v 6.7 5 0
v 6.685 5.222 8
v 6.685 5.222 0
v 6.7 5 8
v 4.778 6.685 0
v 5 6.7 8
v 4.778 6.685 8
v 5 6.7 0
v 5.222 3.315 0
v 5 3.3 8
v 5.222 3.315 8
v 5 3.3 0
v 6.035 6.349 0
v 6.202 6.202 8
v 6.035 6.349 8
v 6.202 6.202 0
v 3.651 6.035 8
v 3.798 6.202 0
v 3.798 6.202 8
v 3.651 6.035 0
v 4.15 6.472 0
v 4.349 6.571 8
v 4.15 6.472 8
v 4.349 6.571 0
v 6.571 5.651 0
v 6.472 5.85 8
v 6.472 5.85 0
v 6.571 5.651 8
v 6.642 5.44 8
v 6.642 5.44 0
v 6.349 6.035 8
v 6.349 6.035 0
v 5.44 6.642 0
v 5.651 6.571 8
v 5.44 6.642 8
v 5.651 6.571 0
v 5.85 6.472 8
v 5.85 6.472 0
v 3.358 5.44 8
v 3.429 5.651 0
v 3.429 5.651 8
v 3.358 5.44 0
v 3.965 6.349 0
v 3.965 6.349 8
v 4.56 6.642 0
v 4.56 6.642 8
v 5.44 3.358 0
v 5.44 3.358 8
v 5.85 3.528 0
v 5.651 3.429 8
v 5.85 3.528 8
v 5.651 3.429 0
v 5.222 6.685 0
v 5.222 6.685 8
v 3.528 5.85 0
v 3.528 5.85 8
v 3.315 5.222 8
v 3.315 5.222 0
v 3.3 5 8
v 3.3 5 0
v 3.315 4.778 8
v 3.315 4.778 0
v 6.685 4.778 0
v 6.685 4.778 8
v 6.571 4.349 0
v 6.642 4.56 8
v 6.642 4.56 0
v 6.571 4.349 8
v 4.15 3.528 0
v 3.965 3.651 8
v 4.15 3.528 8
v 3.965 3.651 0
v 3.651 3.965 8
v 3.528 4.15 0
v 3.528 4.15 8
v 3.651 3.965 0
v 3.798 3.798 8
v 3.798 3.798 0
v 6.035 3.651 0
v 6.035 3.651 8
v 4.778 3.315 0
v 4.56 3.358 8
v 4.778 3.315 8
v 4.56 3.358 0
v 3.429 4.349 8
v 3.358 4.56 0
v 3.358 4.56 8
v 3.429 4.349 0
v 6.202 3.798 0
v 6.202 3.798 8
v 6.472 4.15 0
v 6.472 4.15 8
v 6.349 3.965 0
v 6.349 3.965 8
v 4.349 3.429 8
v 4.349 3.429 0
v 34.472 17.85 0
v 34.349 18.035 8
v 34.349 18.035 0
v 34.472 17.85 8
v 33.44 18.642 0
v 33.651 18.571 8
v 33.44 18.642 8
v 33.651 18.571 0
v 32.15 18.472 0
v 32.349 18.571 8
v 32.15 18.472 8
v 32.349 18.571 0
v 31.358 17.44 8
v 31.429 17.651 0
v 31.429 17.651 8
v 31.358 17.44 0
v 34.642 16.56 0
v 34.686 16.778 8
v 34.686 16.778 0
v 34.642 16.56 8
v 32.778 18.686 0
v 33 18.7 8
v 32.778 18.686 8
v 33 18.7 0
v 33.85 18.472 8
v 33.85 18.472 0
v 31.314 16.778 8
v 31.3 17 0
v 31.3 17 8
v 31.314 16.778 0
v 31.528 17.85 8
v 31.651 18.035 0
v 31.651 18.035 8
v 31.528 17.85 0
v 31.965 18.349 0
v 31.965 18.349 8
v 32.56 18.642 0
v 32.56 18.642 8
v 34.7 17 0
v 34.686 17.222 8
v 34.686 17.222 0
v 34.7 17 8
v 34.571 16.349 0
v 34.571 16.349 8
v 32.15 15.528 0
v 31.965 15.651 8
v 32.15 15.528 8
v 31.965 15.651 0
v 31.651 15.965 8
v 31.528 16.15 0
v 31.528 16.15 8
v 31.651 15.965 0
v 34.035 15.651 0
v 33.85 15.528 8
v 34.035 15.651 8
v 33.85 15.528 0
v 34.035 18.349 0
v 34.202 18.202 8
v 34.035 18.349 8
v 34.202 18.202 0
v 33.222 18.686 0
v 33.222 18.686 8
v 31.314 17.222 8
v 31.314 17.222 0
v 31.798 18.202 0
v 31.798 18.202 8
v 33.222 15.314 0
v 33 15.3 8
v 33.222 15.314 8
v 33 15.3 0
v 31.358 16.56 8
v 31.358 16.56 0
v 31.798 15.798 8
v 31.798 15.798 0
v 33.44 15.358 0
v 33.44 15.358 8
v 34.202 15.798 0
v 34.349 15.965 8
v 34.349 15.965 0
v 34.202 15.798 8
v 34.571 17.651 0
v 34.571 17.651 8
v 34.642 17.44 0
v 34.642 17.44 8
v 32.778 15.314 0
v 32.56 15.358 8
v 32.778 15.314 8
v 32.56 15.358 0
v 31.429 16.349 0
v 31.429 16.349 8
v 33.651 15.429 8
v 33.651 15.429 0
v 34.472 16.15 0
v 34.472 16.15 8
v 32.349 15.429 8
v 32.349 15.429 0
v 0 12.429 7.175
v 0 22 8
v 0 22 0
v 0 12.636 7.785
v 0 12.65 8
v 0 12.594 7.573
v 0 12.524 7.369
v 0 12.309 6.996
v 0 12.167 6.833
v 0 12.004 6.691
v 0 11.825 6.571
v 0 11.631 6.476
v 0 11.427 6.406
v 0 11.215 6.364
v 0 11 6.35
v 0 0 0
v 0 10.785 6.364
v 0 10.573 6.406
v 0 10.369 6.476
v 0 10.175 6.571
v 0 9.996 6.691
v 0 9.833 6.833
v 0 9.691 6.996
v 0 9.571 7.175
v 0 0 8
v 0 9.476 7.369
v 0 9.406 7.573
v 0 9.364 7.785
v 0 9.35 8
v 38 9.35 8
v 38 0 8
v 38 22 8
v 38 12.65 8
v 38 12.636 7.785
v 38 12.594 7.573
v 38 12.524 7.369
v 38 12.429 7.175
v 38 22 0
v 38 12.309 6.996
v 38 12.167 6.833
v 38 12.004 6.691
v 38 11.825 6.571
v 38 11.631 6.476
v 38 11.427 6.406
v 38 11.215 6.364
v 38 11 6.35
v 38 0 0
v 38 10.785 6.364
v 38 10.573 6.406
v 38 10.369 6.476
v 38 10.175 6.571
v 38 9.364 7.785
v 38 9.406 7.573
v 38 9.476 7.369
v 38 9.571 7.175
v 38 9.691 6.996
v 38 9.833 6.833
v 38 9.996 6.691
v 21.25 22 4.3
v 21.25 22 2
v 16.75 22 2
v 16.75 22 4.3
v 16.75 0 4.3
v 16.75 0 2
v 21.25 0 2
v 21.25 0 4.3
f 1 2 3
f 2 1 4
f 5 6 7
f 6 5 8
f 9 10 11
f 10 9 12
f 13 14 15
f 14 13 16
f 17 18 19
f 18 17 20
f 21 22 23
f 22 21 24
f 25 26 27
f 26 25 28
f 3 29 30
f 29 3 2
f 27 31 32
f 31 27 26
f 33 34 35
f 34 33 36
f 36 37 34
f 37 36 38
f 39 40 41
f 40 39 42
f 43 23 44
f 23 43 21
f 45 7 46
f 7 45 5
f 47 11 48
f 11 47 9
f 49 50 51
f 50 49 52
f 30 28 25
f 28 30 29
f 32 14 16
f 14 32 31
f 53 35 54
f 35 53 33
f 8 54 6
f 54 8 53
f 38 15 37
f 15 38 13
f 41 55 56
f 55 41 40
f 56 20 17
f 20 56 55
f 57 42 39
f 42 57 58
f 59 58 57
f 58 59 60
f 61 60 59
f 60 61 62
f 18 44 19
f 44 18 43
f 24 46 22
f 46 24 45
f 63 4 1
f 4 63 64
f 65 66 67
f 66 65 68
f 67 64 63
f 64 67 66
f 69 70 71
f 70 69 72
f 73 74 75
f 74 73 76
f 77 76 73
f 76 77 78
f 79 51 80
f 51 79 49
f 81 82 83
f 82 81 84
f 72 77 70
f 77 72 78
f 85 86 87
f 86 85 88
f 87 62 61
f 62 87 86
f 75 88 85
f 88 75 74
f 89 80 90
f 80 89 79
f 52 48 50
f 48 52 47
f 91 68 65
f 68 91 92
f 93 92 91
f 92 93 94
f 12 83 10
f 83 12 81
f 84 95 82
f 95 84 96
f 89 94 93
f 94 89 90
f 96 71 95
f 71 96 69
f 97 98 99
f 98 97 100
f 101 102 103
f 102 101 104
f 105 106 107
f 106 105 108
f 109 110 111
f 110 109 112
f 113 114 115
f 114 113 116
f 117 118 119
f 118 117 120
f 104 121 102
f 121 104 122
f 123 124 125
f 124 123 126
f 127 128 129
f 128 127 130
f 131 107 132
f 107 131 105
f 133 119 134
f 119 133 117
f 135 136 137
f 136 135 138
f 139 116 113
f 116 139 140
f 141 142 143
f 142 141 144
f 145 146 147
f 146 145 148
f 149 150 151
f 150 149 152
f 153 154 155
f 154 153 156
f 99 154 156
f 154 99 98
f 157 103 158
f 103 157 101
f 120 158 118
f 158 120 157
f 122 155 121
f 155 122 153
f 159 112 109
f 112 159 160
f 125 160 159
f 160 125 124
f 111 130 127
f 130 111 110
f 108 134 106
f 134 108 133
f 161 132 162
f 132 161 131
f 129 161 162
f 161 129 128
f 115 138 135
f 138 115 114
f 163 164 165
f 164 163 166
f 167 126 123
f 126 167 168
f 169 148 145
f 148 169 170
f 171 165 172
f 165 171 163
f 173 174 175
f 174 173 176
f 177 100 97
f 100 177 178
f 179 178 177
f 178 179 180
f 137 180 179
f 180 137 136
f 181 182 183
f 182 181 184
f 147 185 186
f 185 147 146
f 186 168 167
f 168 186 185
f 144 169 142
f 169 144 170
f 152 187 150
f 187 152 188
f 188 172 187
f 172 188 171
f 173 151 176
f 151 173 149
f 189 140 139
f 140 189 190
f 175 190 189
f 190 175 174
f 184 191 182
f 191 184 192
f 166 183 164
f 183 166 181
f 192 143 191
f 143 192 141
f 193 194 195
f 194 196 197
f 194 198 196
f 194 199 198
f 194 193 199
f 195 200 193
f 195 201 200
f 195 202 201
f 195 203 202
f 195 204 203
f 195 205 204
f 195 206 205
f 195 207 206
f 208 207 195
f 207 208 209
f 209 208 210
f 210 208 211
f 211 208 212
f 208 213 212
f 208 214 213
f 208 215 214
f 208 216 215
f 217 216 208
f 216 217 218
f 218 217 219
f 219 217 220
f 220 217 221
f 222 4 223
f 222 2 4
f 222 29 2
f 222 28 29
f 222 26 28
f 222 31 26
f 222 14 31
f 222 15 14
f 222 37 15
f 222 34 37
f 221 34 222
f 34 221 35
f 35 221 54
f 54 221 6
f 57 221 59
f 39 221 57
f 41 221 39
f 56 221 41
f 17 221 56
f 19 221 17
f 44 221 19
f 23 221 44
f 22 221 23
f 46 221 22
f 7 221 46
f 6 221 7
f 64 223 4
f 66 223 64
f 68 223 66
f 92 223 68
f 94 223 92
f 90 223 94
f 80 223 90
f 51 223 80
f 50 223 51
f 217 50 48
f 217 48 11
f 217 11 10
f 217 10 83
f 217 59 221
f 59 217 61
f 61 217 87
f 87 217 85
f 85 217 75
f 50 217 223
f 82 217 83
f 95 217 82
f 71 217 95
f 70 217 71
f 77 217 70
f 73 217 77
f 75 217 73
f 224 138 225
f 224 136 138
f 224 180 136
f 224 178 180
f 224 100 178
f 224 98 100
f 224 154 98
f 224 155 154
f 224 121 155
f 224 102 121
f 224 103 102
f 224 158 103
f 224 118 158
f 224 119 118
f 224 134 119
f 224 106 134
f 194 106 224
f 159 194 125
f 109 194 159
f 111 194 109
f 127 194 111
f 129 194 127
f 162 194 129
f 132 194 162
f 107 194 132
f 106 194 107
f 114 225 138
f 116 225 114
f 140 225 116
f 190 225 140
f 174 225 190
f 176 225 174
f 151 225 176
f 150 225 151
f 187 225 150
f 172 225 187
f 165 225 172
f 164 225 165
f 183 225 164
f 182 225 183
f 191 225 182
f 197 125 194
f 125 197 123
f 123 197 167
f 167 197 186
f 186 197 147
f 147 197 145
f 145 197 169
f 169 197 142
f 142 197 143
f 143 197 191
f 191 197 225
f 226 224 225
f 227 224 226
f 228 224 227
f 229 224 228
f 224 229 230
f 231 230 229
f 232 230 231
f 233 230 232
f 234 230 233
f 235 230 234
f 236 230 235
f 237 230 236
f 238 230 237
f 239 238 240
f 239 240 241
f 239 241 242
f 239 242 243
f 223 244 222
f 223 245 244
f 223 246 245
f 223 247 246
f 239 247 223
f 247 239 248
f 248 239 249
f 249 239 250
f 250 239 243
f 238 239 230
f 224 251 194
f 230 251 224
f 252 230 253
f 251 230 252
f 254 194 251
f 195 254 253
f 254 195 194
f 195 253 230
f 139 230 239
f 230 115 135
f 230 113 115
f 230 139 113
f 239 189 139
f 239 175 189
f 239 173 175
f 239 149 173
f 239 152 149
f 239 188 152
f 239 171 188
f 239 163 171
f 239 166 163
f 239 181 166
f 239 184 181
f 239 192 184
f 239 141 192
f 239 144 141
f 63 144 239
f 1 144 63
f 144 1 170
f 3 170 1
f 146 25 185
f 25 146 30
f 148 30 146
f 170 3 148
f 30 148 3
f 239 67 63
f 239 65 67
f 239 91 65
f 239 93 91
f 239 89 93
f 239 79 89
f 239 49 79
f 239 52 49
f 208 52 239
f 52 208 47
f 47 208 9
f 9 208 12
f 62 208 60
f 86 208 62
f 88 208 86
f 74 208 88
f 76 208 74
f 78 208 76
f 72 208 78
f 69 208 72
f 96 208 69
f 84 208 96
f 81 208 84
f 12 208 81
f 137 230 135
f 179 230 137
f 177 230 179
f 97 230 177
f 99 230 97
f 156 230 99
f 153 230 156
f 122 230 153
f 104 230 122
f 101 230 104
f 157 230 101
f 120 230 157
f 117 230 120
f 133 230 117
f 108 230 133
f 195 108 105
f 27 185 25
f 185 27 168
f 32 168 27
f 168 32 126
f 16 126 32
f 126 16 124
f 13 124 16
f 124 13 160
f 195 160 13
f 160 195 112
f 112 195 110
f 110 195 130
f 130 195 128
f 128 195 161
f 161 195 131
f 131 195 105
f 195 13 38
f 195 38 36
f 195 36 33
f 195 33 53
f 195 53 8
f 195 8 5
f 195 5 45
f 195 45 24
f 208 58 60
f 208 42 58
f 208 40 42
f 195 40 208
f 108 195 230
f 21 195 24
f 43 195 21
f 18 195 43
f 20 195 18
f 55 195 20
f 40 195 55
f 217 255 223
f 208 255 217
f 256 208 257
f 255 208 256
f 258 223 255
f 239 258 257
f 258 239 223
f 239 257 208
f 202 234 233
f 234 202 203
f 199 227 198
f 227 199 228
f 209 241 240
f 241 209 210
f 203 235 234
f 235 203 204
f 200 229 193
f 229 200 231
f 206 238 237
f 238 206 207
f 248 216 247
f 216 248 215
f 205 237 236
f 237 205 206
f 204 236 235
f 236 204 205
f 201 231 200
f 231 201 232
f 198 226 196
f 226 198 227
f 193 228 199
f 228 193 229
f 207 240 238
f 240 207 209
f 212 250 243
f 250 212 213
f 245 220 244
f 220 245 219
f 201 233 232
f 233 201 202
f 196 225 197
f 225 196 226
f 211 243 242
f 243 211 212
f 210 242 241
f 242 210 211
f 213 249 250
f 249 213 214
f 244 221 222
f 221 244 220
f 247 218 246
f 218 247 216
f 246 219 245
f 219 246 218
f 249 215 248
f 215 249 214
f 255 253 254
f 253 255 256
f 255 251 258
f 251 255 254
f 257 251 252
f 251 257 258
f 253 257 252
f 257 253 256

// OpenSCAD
// Седло для разгрузки кабеля RG316 на деревянной рейке вне ВЧ-тракта.
// Нейлоновая стяжка через два окна проходит поперёк кабеля.
length = 38;
width = 22;
height = 8;
cable_diameter = 2.8;
screw_diameter = 3.4;
$fn = 48;
difference() {
    cube([length,width,height]);
    translate([-1,width/2,height]) rotate([0,90,0])
        cylinder(h=length+2,d=cable_diameter+0.5);
    for (p=[[5,5],[length-5,width-5]])
        translate([p.x,p.y,-1]) cylinder(h=height+2,d=screw_diameter);
    // Сквозной тоннель для стяжки 3,6 мм, под канавкой.
    translate([length/2-2.25,-1,2]) cube([4.5,width+2,2.3]);
}
